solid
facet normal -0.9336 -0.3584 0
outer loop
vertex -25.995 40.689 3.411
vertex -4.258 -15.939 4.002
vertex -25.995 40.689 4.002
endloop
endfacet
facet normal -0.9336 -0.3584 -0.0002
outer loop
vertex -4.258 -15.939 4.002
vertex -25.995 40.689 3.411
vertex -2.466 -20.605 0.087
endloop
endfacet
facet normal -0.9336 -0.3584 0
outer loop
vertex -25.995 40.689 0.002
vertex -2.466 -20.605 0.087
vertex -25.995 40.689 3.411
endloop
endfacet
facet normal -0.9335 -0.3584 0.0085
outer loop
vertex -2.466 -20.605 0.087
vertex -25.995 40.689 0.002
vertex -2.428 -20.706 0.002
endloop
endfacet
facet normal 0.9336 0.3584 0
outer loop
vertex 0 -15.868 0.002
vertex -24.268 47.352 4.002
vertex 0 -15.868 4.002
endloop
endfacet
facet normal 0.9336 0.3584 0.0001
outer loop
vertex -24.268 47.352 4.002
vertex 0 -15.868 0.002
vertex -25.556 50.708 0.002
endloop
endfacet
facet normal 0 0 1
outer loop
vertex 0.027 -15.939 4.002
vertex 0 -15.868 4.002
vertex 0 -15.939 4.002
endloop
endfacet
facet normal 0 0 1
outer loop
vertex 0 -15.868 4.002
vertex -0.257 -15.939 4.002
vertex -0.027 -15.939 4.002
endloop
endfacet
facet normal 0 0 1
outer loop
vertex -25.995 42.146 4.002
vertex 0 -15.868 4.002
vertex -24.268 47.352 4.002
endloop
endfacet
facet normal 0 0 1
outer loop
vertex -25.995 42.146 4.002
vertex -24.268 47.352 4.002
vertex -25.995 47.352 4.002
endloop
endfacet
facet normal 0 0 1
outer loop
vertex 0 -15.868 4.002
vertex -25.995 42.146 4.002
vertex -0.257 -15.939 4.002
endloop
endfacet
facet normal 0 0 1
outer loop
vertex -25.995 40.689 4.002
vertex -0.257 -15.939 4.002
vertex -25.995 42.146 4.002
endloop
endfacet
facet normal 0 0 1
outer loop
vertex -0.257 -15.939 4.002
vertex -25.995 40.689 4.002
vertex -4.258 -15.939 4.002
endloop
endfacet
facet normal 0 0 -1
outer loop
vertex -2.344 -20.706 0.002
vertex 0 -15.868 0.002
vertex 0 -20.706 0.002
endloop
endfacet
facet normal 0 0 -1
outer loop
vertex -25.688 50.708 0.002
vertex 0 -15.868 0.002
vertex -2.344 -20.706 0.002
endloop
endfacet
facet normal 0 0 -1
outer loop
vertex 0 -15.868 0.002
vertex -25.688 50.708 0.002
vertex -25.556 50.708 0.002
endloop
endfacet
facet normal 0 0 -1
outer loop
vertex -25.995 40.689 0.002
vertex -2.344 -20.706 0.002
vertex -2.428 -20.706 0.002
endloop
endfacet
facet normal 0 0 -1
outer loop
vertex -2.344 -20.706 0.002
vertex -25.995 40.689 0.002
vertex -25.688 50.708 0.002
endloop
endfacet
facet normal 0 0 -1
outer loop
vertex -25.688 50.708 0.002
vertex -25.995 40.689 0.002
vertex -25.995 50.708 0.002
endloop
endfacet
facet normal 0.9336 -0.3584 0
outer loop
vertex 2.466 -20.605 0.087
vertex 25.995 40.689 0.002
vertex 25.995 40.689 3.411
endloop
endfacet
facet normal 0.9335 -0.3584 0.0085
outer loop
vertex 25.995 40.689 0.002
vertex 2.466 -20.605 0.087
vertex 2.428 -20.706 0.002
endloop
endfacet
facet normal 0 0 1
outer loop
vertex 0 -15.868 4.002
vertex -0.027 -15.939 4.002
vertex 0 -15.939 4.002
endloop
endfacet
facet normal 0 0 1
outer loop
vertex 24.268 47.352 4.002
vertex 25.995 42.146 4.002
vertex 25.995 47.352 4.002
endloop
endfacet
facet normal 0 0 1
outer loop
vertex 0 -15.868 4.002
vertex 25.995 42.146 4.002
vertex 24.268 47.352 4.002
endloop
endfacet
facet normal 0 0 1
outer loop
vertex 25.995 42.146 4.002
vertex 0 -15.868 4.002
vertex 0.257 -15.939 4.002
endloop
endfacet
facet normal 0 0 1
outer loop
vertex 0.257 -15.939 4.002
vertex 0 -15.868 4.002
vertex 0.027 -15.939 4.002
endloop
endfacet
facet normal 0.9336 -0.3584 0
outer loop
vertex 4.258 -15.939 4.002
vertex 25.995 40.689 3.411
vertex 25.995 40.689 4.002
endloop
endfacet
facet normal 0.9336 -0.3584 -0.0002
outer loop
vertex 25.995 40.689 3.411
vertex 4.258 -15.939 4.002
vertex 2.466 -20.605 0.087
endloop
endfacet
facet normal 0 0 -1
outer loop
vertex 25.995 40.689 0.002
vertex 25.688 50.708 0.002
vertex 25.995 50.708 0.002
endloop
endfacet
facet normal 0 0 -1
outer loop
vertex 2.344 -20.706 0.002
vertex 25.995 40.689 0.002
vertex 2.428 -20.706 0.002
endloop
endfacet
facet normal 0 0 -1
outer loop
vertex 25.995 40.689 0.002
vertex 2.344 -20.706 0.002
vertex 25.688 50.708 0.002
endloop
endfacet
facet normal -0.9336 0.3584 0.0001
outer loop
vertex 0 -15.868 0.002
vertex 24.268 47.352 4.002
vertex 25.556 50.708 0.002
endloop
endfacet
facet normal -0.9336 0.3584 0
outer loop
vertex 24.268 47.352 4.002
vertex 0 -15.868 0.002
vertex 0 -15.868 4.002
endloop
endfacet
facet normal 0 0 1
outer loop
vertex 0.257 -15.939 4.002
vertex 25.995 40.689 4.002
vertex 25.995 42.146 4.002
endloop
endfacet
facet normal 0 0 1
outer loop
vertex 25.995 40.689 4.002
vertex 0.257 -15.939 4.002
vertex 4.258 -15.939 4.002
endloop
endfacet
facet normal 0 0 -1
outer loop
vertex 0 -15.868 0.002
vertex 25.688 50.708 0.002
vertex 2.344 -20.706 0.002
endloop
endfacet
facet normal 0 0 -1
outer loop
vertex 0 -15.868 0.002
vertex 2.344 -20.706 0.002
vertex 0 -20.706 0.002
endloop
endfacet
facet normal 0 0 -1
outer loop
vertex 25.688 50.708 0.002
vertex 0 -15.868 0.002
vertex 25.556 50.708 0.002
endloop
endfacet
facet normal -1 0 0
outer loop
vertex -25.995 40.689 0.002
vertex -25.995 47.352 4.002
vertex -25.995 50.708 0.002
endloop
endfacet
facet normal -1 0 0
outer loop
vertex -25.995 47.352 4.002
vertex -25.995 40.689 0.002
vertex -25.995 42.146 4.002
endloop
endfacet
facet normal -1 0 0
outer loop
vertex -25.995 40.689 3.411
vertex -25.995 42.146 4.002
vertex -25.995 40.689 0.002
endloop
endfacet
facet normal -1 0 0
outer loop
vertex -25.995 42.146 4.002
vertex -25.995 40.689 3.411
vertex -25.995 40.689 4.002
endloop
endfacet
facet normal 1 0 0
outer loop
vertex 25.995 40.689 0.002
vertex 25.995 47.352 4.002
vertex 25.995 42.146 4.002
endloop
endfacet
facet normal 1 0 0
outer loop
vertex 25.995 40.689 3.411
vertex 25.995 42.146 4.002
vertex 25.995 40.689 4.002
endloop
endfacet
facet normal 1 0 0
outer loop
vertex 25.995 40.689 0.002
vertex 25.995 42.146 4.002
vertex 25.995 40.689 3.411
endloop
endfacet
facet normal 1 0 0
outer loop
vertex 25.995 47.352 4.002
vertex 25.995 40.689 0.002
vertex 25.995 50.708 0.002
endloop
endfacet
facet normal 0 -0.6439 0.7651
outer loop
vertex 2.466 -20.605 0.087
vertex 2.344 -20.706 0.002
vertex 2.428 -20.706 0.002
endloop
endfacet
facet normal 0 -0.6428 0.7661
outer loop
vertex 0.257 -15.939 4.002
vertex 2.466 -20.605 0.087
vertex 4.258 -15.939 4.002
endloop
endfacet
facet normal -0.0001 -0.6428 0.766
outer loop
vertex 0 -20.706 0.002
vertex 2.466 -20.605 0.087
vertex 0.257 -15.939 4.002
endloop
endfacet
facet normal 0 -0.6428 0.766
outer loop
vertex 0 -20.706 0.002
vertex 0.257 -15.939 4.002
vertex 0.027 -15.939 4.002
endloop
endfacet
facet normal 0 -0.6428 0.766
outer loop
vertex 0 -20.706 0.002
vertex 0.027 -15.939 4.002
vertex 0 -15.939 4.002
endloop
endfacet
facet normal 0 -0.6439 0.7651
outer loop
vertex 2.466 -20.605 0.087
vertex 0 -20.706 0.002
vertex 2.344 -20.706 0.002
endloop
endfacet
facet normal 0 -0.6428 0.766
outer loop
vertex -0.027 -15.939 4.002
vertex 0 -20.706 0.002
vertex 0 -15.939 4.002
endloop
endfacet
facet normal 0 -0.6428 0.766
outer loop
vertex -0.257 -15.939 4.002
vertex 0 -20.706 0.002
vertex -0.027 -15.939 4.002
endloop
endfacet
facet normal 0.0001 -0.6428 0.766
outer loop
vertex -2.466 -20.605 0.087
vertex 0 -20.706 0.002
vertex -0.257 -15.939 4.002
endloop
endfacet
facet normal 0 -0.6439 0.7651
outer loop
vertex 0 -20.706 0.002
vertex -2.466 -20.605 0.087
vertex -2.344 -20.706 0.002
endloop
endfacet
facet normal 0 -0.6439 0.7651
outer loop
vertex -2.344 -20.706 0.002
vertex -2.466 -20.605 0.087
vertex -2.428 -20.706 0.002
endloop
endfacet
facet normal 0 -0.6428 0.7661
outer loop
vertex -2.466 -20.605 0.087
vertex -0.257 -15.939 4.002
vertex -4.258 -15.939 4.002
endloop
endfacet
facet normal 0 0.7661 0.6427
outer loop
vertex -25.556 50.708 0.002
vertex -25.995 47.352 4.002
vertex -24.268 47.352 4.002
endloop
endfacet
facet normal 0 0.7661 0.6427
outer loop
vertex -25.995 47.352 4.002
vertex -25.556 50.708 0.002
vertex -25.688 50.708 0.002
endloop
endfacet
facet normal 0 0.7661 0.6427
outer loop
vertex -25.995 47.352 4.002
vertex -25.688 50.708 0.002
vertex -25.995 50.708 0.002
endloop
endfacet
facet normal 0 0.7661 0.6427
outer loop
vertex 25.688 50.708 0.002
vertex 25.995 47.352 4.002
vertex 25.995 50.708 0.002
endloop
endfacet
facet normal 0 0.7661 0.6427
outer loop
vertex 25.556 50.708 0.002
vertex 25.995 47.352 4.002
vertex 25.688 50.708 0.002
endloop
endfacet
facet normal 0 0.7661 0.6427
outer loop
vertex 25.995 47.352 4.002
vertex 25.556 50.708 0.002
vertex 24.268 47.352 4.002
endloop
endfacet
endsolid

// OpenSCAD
// file: ../lib/torus.scad
module torus(
outer_diameter,
circle_diameter
) {
    rotate_extrude(convexity = 4)
    translate([(outer_diameter-circle_diameter)/2, 0, 0])
    circle(d=circle_diameter, $fn=$fn/3);
}
// file: ../rocket-bottom.scad
use <lib/centered_cube.scad>
use <lib/torus.scad>

translate([0,0,-1.1])
ccube([93,93,1]);

module nozzle() {
    color([.2,.2,.2])
    cylinder(d1=40, d2=16+(40-16)*((40-16)/40), h=16);

    color([.35,.35,.35])
    translate([0,0,16])
    torus(34, 5);

    color([.5,.5,.5])
    translate([0,0,16])
    cylinder(d1=16+(40-16)*((40-16)/40), d2=16, h=40-16);
}


module nozzle_and_fin() {
    nozzle();

    color([.8, .8, .8])
    translate([0,0,41.6]) {
        intersection() {
            cylinder(d=38, h=16);
            translate([0,0,-1])
            ccube([50,50,20], centered=[0,1,0]);
        }
        rotate([0,0,180])
        ccube([4,38,16], centered=[0,1,0]);
    }
    
    color([0,0,0])
    translate([0,0,40])
    ccube([16, 16, 8], centered=[1,1,0]);


    // fin mount
    color([1,1,1])
    translate([0,0,57.6])
    resize([38,32,64])
    cylinder(d1=32, d2=16, h=64);

    // fin
    color([1,1,1])
    translate([18,0,65.6])
    rotate([90,0,0])
    translate([0,0,-0.8])
    linear_extrude(height=1.6) {
        polygon(points=[
            [0,0],
            [3,-8],
            [32, -22],
            [32, -6],
            [0, 24]
        ]);
    }
}

module rocket_bottom() {
    nozzle();
    color([.8, .8, .8])
    translate([0,0,40])
    cylinder(d=16, h=18);

    for (r = [0:1:3]) {
        rotate([0,0,r*90])
        translate([42.5,0,0])
        nozzle_and_fin();
    }
    
    // bottom of fuel tank
    color([1,1,1])
    translate([0,0,58])
    cylinder(d=80, h=32);
}

rocket_bottom();
// file: ../lib/lego_brick_builder.scad
/*

 Basic Lego brick builder module for OpenScad by Jorg Janssen 2013 (CC BY-NC 3.0) 
 To use this in your own projects add:

 use <path_to_this_file/lego_brick_builder.scad>
 brick (length, width, height [,smooth]);

 Length and width are in standard lego brick dimensions. 
 Height is in flat brick heights, so for a normal lego brick height = 3.
 Add optional smooth = true for a brick without studs. 
 Use height = 0 to just put studs/knobs on top of other things.

 */
$fn = 50;
 
 // this is it:
brick(5,3,3);


// and this is how it's done:

FLU = 1.6; // Fundamental Lego Unit = 1.6 mm

BRICK_WIDTH = 5*FLU; // basic brick width
BRICK_HEIGHT = 6*FLU; // basic brick height
PLATE_HEIGHT = 2*FLU; // basic plate height
WALL_THICKNESS = FLU; // outer wall of the brick
STUD_RADIUS = 1.5*FLU; // studs are the small cylinders on top of the brick with the lego logo ('nopje' in Dutch)
STUD_HEIGHT = FLU; 
ANTI_STUD_RADIUS = 0.5*4.07*FLU;  // an anti stud is the hollow cylinder inside bricks that have length > 1 and width > 1
PIN_RADIUS = FLU; // a pin is the small cylinder inside bricks that have length = 1 or width = 1
SUPPORT_THICKNESS = 0.254; // support is the thin surface between anti studs, pins and walls, your printer might not print this thin, try thicker!
EDGE = 0.254; // this is the width and height of the bottom line edge of smooth bricks
CORRECTION = 0.1; // addition to each size, to make sure all parts connect by moving them a little inside each other

module brick(length = 4, width = 2, height = 3, smooth = false){

	// brick shell
	difference(){
		cube(size = [length*BRICK_WIDTH,width*BRICK_WIDTH,height*PLATE_HEIGHT]);
		translate([WALL_THICKNESS,WALL_THICKNESS,-WALL_THICKNESS])
		union(){
			cube(size = [length*BRICK_WIDTH-2*WALL_THICKNESS,width*BRICK_WIDTH-2*WALL_THICKNESS,height*PLATE_HEIGHT]);
			// stud inner holes, radius = pin radius
			if (!smooth) {
				translate([STUD_RADIUS+WALL_THICKNESS,STUD_RADIUS+WALL_THICKNESS,height*PLATE_HEIGHT])
				for (y = [0:width-1]){
					for (x = [0:length-1]){
						translate ([x*BRICK_WIDTH-WALL_THICKNESS,y*BRICK_WIDTH-WALL_THICKNESS,-CORRECTION])
						cylinder(h=WALL_THICKNESS+2*CORRECTION,r=PIN_RADIUS);
					}
				}
			}
			// small bottom line edge for smooth bricks
			else {
				translate([-WALL_THICKNESS-CORRECTION,-WALL_THICKNESS-CORRECTION,FLU-CORRECTION]) 
				difference() {
					cube([length*BRICK_WIDTH+2*CORRECTION,width*BRICK_WIDTH+2*CORRECTION,EDGE+CORRECTION]);
					translate([EDGE+CORRECTION,EDGE+CORRECTION,-CORRECTION])
					cube([length*BRICK_WIDTH-2*EDGE,width*BRICK_WIDTH-2*EDGE,EDGE+3*CORRECTION]); 
				}
			}
		}
	}
	// Studs
	if(!smooth){
		translate([STUD_RADIUS+WALL_THICKNESS,STUD_RADIUS+WALL_THICKNESS,height*PLATE_HEIGHT])
		for (y = [0:width-1]){
			for (x = [0:length-1]){
				translate ([x*BRICK_WIDTH,y*BRICK_WIDTH,-CORRECTION])
				difference(){
					cylinder(h=STUD_HEIGHT+CORRECTION, r=STUD_RADIUS);
					// Stud inner holes
					translate([0,0,-CORRECTION])
					cylinder(h=0.5*STUD_HEIGHT+CORRECTION,r=PIN_RADIUS);
				}
				// tech logo - disable this if your printer isn't capable of printing this small
				if ( length > width){
					translate([x*BRICK_WIDTH+0.8,y*BRICK_WIDTH-1.9,STUD_HEIGHT-CORRECTION])
					resize([1.2*1.7,2.2*1.7,0.254+CORRECTION])
					rotate(a=[0,0,90])
					import("tech.stl");
				}
				else {
					translate([x*BRICK_WIDTH-1.9,y*BRICK_WIDTH-0.8,STUD_HEIGHT-CORRECTION])
					resize([2.2*1.7,1.2*1.7,0.254+CORRECTION])
					import("tech.stl");				
				}				
				/* 
				// Alternative 2-square logo
				translate ([x*BRICK_WIDTH+CORRECTION,y*BRICK_WIDTH-CORRECTION,STUD_HEIGHT-CORRECTION])		
				cube([1,1,2*CORRECTION]);
				translate ([x*BRICK_WIDTH-0.9,y*BRICK_WIDTH-0.9,STUD_HEIGHT-CORRECTION])		
				cube([1,1,0.3]);
				*/				
			}
		}
	}
	// Pins x
	if (width == 1 && length > 1) {	
			for (x = [1:length-1]){
				translate([x*BRICK_WIDTH,0.5*BRICK_WIDTH,0])
				cylinder(h=height*PLATE_HEIGHT-WALL_THICKNESS+CORRECTION,r=PIN_RADIUS);
				// Supports
				if (height > 1) {
				translate([x*BRICK_WIDTH-0.5*SUPPORT_THICKNESS,CORRECTION,STUD_HEIGHT])
				cube(size=[SUPPORT_THICKNESS,BRICK_WIDTH-2*CORRECTION,height*PLATE_HEIGHT-STUD_HEIGHT-WALL_THICKNESS+CORRECTION]);
			}
		}
	}
	// Pins y
	if (length == 1 && width > 1) {	
			for (y = [1:width-1]){
			translate([0.5*BRICK_WIDTH,y*BRICK_WIDTH,0])
			cylinder(h=height*PLATE_HEIGHT-WALL_THICKNESS+CORRECTION,r=PIN_RADIUS);
			// Supports
			if (height > 1) {
			translate([CORRECTION,y*BRICK_WIDTH-0.5*SUPPORT_THICKNESS,STUD_HEIGHT])
			cube(size=[BRICK_WIDTH-2*CORRECTION,SUPPORT_THICKNESS,height*PLATE_HEIGHT-STUD_HEIGHT-WALL_THICKNESS+CORRECTION]);}
			
		}
	}
	// Anti Studs
	if (width > 1 && length > 1){
		difference(){
			union(){
				for(y = [1:width-1]){
					for(x = [1:length-1]){
						// anti studs
						translate([x*BRICK_WIDTH,y*BRICK_WIDTH,0])
						cylinder (h=height*PLATE_HEIGHT-WALL_THICKNESS+CORRECTION, r = ANTI_STUD_RADIUS);
						// Supports
						if (height > 1){
							// Support x
							if (x%2 == 0 && (length%2 == 0 || length%4 == 1 && x<length/2 || length%4 == 3 && x>length/2) || x%2 == 1 && (length%4 == 3 && x<length/2 || length%4 == 1 && x>length/2)) {
								translate([BRICK_WIDTH*x-0.5*SUPPORT_THICKNESS,y*BRICK_WIDTH-BRICK_WIDTH+WALL_THICKNESS-CORRECTION,STUD_HEIGHT])
								cube(size=[SUPPORT_THICKNESS,2*BRICK_WIDTH-2*WALL_THICKNESS,height*PLATE_HEIGHT-STUD_HEIGHT-WALL_THICKNESS+CORRECTION]);
							}
							// Supports y							
							if (y%2 == 0 && (width%2 == 0 || width%4 == 1 && y<width/2 || width%4 == 3 && y>width/2) || y%2 == 1 && (width%4 == 3 && y<width/2 || width%4 == 1 && y>width/2)) {
								translate([x*BRICK_WIDTH-BRICK_WIDTH+WALL_THICKNESS-CORRECTION,BRICK_WIDTH*y-0.5*SUPPORT_THICKNESS,STUD_HEIGHT])
								cube(size=[2*BRICK_WIDTH-2*WALL_THICKNESS,SUPPORT_THICKNESS,height*PLATE_HEIGHT-STUD_HEIGHT-WALL_THICKNESS+CORRECTION]);
							}
						}
					}
				}
			}
			union(){
				for(y = [1:width-1]){
					for(x = [1:length-1]){
						// hollow anti studs
						translate([x*BRICK_WIDTH,y*BRICK_WIDTH,-WALL_THICKNESS])
						cylinder (h=height*PLATE_HEIGHT, r = STUD_RADIUS);				
					}
				}
			}
		}		
	}
}
	
// file: ../lib/centered_cube.scad
module ccube(size, centered=[1,1,1]) {
    centered_cube(size, centered);
}

module centered_cube(size, centered=[1,1,1]) {
    translate([(-size[0]/2)*centered[0], (-size[1]/2)*centered[1], (-size[2]/2)*centered[2]])
    cube(size);
}
// main file
use <../shelf.scad>
use <../lib/centered_cube.scad>

g_t=3;

translate([0, 0, 20])
rotate([220, 0, 0])
intersection() {
    intersection() {
        translate([0,0,-150])
        rotate([0,180,0])
        gantry_layer1();
        
        translate([0,0,-g_t/2])
        ccube([60,60,50], centered=[1,1,0]);
    }
    
    *#translate([0,-1+0.01,2.01])
    ccube([52-0.01,50,46.01], centered=[1,3,0]);

    translate([0,-1+0.01-25,2.01])
    ccube([52-0.01,55,46.01], centered=[1,0,0]);
}
